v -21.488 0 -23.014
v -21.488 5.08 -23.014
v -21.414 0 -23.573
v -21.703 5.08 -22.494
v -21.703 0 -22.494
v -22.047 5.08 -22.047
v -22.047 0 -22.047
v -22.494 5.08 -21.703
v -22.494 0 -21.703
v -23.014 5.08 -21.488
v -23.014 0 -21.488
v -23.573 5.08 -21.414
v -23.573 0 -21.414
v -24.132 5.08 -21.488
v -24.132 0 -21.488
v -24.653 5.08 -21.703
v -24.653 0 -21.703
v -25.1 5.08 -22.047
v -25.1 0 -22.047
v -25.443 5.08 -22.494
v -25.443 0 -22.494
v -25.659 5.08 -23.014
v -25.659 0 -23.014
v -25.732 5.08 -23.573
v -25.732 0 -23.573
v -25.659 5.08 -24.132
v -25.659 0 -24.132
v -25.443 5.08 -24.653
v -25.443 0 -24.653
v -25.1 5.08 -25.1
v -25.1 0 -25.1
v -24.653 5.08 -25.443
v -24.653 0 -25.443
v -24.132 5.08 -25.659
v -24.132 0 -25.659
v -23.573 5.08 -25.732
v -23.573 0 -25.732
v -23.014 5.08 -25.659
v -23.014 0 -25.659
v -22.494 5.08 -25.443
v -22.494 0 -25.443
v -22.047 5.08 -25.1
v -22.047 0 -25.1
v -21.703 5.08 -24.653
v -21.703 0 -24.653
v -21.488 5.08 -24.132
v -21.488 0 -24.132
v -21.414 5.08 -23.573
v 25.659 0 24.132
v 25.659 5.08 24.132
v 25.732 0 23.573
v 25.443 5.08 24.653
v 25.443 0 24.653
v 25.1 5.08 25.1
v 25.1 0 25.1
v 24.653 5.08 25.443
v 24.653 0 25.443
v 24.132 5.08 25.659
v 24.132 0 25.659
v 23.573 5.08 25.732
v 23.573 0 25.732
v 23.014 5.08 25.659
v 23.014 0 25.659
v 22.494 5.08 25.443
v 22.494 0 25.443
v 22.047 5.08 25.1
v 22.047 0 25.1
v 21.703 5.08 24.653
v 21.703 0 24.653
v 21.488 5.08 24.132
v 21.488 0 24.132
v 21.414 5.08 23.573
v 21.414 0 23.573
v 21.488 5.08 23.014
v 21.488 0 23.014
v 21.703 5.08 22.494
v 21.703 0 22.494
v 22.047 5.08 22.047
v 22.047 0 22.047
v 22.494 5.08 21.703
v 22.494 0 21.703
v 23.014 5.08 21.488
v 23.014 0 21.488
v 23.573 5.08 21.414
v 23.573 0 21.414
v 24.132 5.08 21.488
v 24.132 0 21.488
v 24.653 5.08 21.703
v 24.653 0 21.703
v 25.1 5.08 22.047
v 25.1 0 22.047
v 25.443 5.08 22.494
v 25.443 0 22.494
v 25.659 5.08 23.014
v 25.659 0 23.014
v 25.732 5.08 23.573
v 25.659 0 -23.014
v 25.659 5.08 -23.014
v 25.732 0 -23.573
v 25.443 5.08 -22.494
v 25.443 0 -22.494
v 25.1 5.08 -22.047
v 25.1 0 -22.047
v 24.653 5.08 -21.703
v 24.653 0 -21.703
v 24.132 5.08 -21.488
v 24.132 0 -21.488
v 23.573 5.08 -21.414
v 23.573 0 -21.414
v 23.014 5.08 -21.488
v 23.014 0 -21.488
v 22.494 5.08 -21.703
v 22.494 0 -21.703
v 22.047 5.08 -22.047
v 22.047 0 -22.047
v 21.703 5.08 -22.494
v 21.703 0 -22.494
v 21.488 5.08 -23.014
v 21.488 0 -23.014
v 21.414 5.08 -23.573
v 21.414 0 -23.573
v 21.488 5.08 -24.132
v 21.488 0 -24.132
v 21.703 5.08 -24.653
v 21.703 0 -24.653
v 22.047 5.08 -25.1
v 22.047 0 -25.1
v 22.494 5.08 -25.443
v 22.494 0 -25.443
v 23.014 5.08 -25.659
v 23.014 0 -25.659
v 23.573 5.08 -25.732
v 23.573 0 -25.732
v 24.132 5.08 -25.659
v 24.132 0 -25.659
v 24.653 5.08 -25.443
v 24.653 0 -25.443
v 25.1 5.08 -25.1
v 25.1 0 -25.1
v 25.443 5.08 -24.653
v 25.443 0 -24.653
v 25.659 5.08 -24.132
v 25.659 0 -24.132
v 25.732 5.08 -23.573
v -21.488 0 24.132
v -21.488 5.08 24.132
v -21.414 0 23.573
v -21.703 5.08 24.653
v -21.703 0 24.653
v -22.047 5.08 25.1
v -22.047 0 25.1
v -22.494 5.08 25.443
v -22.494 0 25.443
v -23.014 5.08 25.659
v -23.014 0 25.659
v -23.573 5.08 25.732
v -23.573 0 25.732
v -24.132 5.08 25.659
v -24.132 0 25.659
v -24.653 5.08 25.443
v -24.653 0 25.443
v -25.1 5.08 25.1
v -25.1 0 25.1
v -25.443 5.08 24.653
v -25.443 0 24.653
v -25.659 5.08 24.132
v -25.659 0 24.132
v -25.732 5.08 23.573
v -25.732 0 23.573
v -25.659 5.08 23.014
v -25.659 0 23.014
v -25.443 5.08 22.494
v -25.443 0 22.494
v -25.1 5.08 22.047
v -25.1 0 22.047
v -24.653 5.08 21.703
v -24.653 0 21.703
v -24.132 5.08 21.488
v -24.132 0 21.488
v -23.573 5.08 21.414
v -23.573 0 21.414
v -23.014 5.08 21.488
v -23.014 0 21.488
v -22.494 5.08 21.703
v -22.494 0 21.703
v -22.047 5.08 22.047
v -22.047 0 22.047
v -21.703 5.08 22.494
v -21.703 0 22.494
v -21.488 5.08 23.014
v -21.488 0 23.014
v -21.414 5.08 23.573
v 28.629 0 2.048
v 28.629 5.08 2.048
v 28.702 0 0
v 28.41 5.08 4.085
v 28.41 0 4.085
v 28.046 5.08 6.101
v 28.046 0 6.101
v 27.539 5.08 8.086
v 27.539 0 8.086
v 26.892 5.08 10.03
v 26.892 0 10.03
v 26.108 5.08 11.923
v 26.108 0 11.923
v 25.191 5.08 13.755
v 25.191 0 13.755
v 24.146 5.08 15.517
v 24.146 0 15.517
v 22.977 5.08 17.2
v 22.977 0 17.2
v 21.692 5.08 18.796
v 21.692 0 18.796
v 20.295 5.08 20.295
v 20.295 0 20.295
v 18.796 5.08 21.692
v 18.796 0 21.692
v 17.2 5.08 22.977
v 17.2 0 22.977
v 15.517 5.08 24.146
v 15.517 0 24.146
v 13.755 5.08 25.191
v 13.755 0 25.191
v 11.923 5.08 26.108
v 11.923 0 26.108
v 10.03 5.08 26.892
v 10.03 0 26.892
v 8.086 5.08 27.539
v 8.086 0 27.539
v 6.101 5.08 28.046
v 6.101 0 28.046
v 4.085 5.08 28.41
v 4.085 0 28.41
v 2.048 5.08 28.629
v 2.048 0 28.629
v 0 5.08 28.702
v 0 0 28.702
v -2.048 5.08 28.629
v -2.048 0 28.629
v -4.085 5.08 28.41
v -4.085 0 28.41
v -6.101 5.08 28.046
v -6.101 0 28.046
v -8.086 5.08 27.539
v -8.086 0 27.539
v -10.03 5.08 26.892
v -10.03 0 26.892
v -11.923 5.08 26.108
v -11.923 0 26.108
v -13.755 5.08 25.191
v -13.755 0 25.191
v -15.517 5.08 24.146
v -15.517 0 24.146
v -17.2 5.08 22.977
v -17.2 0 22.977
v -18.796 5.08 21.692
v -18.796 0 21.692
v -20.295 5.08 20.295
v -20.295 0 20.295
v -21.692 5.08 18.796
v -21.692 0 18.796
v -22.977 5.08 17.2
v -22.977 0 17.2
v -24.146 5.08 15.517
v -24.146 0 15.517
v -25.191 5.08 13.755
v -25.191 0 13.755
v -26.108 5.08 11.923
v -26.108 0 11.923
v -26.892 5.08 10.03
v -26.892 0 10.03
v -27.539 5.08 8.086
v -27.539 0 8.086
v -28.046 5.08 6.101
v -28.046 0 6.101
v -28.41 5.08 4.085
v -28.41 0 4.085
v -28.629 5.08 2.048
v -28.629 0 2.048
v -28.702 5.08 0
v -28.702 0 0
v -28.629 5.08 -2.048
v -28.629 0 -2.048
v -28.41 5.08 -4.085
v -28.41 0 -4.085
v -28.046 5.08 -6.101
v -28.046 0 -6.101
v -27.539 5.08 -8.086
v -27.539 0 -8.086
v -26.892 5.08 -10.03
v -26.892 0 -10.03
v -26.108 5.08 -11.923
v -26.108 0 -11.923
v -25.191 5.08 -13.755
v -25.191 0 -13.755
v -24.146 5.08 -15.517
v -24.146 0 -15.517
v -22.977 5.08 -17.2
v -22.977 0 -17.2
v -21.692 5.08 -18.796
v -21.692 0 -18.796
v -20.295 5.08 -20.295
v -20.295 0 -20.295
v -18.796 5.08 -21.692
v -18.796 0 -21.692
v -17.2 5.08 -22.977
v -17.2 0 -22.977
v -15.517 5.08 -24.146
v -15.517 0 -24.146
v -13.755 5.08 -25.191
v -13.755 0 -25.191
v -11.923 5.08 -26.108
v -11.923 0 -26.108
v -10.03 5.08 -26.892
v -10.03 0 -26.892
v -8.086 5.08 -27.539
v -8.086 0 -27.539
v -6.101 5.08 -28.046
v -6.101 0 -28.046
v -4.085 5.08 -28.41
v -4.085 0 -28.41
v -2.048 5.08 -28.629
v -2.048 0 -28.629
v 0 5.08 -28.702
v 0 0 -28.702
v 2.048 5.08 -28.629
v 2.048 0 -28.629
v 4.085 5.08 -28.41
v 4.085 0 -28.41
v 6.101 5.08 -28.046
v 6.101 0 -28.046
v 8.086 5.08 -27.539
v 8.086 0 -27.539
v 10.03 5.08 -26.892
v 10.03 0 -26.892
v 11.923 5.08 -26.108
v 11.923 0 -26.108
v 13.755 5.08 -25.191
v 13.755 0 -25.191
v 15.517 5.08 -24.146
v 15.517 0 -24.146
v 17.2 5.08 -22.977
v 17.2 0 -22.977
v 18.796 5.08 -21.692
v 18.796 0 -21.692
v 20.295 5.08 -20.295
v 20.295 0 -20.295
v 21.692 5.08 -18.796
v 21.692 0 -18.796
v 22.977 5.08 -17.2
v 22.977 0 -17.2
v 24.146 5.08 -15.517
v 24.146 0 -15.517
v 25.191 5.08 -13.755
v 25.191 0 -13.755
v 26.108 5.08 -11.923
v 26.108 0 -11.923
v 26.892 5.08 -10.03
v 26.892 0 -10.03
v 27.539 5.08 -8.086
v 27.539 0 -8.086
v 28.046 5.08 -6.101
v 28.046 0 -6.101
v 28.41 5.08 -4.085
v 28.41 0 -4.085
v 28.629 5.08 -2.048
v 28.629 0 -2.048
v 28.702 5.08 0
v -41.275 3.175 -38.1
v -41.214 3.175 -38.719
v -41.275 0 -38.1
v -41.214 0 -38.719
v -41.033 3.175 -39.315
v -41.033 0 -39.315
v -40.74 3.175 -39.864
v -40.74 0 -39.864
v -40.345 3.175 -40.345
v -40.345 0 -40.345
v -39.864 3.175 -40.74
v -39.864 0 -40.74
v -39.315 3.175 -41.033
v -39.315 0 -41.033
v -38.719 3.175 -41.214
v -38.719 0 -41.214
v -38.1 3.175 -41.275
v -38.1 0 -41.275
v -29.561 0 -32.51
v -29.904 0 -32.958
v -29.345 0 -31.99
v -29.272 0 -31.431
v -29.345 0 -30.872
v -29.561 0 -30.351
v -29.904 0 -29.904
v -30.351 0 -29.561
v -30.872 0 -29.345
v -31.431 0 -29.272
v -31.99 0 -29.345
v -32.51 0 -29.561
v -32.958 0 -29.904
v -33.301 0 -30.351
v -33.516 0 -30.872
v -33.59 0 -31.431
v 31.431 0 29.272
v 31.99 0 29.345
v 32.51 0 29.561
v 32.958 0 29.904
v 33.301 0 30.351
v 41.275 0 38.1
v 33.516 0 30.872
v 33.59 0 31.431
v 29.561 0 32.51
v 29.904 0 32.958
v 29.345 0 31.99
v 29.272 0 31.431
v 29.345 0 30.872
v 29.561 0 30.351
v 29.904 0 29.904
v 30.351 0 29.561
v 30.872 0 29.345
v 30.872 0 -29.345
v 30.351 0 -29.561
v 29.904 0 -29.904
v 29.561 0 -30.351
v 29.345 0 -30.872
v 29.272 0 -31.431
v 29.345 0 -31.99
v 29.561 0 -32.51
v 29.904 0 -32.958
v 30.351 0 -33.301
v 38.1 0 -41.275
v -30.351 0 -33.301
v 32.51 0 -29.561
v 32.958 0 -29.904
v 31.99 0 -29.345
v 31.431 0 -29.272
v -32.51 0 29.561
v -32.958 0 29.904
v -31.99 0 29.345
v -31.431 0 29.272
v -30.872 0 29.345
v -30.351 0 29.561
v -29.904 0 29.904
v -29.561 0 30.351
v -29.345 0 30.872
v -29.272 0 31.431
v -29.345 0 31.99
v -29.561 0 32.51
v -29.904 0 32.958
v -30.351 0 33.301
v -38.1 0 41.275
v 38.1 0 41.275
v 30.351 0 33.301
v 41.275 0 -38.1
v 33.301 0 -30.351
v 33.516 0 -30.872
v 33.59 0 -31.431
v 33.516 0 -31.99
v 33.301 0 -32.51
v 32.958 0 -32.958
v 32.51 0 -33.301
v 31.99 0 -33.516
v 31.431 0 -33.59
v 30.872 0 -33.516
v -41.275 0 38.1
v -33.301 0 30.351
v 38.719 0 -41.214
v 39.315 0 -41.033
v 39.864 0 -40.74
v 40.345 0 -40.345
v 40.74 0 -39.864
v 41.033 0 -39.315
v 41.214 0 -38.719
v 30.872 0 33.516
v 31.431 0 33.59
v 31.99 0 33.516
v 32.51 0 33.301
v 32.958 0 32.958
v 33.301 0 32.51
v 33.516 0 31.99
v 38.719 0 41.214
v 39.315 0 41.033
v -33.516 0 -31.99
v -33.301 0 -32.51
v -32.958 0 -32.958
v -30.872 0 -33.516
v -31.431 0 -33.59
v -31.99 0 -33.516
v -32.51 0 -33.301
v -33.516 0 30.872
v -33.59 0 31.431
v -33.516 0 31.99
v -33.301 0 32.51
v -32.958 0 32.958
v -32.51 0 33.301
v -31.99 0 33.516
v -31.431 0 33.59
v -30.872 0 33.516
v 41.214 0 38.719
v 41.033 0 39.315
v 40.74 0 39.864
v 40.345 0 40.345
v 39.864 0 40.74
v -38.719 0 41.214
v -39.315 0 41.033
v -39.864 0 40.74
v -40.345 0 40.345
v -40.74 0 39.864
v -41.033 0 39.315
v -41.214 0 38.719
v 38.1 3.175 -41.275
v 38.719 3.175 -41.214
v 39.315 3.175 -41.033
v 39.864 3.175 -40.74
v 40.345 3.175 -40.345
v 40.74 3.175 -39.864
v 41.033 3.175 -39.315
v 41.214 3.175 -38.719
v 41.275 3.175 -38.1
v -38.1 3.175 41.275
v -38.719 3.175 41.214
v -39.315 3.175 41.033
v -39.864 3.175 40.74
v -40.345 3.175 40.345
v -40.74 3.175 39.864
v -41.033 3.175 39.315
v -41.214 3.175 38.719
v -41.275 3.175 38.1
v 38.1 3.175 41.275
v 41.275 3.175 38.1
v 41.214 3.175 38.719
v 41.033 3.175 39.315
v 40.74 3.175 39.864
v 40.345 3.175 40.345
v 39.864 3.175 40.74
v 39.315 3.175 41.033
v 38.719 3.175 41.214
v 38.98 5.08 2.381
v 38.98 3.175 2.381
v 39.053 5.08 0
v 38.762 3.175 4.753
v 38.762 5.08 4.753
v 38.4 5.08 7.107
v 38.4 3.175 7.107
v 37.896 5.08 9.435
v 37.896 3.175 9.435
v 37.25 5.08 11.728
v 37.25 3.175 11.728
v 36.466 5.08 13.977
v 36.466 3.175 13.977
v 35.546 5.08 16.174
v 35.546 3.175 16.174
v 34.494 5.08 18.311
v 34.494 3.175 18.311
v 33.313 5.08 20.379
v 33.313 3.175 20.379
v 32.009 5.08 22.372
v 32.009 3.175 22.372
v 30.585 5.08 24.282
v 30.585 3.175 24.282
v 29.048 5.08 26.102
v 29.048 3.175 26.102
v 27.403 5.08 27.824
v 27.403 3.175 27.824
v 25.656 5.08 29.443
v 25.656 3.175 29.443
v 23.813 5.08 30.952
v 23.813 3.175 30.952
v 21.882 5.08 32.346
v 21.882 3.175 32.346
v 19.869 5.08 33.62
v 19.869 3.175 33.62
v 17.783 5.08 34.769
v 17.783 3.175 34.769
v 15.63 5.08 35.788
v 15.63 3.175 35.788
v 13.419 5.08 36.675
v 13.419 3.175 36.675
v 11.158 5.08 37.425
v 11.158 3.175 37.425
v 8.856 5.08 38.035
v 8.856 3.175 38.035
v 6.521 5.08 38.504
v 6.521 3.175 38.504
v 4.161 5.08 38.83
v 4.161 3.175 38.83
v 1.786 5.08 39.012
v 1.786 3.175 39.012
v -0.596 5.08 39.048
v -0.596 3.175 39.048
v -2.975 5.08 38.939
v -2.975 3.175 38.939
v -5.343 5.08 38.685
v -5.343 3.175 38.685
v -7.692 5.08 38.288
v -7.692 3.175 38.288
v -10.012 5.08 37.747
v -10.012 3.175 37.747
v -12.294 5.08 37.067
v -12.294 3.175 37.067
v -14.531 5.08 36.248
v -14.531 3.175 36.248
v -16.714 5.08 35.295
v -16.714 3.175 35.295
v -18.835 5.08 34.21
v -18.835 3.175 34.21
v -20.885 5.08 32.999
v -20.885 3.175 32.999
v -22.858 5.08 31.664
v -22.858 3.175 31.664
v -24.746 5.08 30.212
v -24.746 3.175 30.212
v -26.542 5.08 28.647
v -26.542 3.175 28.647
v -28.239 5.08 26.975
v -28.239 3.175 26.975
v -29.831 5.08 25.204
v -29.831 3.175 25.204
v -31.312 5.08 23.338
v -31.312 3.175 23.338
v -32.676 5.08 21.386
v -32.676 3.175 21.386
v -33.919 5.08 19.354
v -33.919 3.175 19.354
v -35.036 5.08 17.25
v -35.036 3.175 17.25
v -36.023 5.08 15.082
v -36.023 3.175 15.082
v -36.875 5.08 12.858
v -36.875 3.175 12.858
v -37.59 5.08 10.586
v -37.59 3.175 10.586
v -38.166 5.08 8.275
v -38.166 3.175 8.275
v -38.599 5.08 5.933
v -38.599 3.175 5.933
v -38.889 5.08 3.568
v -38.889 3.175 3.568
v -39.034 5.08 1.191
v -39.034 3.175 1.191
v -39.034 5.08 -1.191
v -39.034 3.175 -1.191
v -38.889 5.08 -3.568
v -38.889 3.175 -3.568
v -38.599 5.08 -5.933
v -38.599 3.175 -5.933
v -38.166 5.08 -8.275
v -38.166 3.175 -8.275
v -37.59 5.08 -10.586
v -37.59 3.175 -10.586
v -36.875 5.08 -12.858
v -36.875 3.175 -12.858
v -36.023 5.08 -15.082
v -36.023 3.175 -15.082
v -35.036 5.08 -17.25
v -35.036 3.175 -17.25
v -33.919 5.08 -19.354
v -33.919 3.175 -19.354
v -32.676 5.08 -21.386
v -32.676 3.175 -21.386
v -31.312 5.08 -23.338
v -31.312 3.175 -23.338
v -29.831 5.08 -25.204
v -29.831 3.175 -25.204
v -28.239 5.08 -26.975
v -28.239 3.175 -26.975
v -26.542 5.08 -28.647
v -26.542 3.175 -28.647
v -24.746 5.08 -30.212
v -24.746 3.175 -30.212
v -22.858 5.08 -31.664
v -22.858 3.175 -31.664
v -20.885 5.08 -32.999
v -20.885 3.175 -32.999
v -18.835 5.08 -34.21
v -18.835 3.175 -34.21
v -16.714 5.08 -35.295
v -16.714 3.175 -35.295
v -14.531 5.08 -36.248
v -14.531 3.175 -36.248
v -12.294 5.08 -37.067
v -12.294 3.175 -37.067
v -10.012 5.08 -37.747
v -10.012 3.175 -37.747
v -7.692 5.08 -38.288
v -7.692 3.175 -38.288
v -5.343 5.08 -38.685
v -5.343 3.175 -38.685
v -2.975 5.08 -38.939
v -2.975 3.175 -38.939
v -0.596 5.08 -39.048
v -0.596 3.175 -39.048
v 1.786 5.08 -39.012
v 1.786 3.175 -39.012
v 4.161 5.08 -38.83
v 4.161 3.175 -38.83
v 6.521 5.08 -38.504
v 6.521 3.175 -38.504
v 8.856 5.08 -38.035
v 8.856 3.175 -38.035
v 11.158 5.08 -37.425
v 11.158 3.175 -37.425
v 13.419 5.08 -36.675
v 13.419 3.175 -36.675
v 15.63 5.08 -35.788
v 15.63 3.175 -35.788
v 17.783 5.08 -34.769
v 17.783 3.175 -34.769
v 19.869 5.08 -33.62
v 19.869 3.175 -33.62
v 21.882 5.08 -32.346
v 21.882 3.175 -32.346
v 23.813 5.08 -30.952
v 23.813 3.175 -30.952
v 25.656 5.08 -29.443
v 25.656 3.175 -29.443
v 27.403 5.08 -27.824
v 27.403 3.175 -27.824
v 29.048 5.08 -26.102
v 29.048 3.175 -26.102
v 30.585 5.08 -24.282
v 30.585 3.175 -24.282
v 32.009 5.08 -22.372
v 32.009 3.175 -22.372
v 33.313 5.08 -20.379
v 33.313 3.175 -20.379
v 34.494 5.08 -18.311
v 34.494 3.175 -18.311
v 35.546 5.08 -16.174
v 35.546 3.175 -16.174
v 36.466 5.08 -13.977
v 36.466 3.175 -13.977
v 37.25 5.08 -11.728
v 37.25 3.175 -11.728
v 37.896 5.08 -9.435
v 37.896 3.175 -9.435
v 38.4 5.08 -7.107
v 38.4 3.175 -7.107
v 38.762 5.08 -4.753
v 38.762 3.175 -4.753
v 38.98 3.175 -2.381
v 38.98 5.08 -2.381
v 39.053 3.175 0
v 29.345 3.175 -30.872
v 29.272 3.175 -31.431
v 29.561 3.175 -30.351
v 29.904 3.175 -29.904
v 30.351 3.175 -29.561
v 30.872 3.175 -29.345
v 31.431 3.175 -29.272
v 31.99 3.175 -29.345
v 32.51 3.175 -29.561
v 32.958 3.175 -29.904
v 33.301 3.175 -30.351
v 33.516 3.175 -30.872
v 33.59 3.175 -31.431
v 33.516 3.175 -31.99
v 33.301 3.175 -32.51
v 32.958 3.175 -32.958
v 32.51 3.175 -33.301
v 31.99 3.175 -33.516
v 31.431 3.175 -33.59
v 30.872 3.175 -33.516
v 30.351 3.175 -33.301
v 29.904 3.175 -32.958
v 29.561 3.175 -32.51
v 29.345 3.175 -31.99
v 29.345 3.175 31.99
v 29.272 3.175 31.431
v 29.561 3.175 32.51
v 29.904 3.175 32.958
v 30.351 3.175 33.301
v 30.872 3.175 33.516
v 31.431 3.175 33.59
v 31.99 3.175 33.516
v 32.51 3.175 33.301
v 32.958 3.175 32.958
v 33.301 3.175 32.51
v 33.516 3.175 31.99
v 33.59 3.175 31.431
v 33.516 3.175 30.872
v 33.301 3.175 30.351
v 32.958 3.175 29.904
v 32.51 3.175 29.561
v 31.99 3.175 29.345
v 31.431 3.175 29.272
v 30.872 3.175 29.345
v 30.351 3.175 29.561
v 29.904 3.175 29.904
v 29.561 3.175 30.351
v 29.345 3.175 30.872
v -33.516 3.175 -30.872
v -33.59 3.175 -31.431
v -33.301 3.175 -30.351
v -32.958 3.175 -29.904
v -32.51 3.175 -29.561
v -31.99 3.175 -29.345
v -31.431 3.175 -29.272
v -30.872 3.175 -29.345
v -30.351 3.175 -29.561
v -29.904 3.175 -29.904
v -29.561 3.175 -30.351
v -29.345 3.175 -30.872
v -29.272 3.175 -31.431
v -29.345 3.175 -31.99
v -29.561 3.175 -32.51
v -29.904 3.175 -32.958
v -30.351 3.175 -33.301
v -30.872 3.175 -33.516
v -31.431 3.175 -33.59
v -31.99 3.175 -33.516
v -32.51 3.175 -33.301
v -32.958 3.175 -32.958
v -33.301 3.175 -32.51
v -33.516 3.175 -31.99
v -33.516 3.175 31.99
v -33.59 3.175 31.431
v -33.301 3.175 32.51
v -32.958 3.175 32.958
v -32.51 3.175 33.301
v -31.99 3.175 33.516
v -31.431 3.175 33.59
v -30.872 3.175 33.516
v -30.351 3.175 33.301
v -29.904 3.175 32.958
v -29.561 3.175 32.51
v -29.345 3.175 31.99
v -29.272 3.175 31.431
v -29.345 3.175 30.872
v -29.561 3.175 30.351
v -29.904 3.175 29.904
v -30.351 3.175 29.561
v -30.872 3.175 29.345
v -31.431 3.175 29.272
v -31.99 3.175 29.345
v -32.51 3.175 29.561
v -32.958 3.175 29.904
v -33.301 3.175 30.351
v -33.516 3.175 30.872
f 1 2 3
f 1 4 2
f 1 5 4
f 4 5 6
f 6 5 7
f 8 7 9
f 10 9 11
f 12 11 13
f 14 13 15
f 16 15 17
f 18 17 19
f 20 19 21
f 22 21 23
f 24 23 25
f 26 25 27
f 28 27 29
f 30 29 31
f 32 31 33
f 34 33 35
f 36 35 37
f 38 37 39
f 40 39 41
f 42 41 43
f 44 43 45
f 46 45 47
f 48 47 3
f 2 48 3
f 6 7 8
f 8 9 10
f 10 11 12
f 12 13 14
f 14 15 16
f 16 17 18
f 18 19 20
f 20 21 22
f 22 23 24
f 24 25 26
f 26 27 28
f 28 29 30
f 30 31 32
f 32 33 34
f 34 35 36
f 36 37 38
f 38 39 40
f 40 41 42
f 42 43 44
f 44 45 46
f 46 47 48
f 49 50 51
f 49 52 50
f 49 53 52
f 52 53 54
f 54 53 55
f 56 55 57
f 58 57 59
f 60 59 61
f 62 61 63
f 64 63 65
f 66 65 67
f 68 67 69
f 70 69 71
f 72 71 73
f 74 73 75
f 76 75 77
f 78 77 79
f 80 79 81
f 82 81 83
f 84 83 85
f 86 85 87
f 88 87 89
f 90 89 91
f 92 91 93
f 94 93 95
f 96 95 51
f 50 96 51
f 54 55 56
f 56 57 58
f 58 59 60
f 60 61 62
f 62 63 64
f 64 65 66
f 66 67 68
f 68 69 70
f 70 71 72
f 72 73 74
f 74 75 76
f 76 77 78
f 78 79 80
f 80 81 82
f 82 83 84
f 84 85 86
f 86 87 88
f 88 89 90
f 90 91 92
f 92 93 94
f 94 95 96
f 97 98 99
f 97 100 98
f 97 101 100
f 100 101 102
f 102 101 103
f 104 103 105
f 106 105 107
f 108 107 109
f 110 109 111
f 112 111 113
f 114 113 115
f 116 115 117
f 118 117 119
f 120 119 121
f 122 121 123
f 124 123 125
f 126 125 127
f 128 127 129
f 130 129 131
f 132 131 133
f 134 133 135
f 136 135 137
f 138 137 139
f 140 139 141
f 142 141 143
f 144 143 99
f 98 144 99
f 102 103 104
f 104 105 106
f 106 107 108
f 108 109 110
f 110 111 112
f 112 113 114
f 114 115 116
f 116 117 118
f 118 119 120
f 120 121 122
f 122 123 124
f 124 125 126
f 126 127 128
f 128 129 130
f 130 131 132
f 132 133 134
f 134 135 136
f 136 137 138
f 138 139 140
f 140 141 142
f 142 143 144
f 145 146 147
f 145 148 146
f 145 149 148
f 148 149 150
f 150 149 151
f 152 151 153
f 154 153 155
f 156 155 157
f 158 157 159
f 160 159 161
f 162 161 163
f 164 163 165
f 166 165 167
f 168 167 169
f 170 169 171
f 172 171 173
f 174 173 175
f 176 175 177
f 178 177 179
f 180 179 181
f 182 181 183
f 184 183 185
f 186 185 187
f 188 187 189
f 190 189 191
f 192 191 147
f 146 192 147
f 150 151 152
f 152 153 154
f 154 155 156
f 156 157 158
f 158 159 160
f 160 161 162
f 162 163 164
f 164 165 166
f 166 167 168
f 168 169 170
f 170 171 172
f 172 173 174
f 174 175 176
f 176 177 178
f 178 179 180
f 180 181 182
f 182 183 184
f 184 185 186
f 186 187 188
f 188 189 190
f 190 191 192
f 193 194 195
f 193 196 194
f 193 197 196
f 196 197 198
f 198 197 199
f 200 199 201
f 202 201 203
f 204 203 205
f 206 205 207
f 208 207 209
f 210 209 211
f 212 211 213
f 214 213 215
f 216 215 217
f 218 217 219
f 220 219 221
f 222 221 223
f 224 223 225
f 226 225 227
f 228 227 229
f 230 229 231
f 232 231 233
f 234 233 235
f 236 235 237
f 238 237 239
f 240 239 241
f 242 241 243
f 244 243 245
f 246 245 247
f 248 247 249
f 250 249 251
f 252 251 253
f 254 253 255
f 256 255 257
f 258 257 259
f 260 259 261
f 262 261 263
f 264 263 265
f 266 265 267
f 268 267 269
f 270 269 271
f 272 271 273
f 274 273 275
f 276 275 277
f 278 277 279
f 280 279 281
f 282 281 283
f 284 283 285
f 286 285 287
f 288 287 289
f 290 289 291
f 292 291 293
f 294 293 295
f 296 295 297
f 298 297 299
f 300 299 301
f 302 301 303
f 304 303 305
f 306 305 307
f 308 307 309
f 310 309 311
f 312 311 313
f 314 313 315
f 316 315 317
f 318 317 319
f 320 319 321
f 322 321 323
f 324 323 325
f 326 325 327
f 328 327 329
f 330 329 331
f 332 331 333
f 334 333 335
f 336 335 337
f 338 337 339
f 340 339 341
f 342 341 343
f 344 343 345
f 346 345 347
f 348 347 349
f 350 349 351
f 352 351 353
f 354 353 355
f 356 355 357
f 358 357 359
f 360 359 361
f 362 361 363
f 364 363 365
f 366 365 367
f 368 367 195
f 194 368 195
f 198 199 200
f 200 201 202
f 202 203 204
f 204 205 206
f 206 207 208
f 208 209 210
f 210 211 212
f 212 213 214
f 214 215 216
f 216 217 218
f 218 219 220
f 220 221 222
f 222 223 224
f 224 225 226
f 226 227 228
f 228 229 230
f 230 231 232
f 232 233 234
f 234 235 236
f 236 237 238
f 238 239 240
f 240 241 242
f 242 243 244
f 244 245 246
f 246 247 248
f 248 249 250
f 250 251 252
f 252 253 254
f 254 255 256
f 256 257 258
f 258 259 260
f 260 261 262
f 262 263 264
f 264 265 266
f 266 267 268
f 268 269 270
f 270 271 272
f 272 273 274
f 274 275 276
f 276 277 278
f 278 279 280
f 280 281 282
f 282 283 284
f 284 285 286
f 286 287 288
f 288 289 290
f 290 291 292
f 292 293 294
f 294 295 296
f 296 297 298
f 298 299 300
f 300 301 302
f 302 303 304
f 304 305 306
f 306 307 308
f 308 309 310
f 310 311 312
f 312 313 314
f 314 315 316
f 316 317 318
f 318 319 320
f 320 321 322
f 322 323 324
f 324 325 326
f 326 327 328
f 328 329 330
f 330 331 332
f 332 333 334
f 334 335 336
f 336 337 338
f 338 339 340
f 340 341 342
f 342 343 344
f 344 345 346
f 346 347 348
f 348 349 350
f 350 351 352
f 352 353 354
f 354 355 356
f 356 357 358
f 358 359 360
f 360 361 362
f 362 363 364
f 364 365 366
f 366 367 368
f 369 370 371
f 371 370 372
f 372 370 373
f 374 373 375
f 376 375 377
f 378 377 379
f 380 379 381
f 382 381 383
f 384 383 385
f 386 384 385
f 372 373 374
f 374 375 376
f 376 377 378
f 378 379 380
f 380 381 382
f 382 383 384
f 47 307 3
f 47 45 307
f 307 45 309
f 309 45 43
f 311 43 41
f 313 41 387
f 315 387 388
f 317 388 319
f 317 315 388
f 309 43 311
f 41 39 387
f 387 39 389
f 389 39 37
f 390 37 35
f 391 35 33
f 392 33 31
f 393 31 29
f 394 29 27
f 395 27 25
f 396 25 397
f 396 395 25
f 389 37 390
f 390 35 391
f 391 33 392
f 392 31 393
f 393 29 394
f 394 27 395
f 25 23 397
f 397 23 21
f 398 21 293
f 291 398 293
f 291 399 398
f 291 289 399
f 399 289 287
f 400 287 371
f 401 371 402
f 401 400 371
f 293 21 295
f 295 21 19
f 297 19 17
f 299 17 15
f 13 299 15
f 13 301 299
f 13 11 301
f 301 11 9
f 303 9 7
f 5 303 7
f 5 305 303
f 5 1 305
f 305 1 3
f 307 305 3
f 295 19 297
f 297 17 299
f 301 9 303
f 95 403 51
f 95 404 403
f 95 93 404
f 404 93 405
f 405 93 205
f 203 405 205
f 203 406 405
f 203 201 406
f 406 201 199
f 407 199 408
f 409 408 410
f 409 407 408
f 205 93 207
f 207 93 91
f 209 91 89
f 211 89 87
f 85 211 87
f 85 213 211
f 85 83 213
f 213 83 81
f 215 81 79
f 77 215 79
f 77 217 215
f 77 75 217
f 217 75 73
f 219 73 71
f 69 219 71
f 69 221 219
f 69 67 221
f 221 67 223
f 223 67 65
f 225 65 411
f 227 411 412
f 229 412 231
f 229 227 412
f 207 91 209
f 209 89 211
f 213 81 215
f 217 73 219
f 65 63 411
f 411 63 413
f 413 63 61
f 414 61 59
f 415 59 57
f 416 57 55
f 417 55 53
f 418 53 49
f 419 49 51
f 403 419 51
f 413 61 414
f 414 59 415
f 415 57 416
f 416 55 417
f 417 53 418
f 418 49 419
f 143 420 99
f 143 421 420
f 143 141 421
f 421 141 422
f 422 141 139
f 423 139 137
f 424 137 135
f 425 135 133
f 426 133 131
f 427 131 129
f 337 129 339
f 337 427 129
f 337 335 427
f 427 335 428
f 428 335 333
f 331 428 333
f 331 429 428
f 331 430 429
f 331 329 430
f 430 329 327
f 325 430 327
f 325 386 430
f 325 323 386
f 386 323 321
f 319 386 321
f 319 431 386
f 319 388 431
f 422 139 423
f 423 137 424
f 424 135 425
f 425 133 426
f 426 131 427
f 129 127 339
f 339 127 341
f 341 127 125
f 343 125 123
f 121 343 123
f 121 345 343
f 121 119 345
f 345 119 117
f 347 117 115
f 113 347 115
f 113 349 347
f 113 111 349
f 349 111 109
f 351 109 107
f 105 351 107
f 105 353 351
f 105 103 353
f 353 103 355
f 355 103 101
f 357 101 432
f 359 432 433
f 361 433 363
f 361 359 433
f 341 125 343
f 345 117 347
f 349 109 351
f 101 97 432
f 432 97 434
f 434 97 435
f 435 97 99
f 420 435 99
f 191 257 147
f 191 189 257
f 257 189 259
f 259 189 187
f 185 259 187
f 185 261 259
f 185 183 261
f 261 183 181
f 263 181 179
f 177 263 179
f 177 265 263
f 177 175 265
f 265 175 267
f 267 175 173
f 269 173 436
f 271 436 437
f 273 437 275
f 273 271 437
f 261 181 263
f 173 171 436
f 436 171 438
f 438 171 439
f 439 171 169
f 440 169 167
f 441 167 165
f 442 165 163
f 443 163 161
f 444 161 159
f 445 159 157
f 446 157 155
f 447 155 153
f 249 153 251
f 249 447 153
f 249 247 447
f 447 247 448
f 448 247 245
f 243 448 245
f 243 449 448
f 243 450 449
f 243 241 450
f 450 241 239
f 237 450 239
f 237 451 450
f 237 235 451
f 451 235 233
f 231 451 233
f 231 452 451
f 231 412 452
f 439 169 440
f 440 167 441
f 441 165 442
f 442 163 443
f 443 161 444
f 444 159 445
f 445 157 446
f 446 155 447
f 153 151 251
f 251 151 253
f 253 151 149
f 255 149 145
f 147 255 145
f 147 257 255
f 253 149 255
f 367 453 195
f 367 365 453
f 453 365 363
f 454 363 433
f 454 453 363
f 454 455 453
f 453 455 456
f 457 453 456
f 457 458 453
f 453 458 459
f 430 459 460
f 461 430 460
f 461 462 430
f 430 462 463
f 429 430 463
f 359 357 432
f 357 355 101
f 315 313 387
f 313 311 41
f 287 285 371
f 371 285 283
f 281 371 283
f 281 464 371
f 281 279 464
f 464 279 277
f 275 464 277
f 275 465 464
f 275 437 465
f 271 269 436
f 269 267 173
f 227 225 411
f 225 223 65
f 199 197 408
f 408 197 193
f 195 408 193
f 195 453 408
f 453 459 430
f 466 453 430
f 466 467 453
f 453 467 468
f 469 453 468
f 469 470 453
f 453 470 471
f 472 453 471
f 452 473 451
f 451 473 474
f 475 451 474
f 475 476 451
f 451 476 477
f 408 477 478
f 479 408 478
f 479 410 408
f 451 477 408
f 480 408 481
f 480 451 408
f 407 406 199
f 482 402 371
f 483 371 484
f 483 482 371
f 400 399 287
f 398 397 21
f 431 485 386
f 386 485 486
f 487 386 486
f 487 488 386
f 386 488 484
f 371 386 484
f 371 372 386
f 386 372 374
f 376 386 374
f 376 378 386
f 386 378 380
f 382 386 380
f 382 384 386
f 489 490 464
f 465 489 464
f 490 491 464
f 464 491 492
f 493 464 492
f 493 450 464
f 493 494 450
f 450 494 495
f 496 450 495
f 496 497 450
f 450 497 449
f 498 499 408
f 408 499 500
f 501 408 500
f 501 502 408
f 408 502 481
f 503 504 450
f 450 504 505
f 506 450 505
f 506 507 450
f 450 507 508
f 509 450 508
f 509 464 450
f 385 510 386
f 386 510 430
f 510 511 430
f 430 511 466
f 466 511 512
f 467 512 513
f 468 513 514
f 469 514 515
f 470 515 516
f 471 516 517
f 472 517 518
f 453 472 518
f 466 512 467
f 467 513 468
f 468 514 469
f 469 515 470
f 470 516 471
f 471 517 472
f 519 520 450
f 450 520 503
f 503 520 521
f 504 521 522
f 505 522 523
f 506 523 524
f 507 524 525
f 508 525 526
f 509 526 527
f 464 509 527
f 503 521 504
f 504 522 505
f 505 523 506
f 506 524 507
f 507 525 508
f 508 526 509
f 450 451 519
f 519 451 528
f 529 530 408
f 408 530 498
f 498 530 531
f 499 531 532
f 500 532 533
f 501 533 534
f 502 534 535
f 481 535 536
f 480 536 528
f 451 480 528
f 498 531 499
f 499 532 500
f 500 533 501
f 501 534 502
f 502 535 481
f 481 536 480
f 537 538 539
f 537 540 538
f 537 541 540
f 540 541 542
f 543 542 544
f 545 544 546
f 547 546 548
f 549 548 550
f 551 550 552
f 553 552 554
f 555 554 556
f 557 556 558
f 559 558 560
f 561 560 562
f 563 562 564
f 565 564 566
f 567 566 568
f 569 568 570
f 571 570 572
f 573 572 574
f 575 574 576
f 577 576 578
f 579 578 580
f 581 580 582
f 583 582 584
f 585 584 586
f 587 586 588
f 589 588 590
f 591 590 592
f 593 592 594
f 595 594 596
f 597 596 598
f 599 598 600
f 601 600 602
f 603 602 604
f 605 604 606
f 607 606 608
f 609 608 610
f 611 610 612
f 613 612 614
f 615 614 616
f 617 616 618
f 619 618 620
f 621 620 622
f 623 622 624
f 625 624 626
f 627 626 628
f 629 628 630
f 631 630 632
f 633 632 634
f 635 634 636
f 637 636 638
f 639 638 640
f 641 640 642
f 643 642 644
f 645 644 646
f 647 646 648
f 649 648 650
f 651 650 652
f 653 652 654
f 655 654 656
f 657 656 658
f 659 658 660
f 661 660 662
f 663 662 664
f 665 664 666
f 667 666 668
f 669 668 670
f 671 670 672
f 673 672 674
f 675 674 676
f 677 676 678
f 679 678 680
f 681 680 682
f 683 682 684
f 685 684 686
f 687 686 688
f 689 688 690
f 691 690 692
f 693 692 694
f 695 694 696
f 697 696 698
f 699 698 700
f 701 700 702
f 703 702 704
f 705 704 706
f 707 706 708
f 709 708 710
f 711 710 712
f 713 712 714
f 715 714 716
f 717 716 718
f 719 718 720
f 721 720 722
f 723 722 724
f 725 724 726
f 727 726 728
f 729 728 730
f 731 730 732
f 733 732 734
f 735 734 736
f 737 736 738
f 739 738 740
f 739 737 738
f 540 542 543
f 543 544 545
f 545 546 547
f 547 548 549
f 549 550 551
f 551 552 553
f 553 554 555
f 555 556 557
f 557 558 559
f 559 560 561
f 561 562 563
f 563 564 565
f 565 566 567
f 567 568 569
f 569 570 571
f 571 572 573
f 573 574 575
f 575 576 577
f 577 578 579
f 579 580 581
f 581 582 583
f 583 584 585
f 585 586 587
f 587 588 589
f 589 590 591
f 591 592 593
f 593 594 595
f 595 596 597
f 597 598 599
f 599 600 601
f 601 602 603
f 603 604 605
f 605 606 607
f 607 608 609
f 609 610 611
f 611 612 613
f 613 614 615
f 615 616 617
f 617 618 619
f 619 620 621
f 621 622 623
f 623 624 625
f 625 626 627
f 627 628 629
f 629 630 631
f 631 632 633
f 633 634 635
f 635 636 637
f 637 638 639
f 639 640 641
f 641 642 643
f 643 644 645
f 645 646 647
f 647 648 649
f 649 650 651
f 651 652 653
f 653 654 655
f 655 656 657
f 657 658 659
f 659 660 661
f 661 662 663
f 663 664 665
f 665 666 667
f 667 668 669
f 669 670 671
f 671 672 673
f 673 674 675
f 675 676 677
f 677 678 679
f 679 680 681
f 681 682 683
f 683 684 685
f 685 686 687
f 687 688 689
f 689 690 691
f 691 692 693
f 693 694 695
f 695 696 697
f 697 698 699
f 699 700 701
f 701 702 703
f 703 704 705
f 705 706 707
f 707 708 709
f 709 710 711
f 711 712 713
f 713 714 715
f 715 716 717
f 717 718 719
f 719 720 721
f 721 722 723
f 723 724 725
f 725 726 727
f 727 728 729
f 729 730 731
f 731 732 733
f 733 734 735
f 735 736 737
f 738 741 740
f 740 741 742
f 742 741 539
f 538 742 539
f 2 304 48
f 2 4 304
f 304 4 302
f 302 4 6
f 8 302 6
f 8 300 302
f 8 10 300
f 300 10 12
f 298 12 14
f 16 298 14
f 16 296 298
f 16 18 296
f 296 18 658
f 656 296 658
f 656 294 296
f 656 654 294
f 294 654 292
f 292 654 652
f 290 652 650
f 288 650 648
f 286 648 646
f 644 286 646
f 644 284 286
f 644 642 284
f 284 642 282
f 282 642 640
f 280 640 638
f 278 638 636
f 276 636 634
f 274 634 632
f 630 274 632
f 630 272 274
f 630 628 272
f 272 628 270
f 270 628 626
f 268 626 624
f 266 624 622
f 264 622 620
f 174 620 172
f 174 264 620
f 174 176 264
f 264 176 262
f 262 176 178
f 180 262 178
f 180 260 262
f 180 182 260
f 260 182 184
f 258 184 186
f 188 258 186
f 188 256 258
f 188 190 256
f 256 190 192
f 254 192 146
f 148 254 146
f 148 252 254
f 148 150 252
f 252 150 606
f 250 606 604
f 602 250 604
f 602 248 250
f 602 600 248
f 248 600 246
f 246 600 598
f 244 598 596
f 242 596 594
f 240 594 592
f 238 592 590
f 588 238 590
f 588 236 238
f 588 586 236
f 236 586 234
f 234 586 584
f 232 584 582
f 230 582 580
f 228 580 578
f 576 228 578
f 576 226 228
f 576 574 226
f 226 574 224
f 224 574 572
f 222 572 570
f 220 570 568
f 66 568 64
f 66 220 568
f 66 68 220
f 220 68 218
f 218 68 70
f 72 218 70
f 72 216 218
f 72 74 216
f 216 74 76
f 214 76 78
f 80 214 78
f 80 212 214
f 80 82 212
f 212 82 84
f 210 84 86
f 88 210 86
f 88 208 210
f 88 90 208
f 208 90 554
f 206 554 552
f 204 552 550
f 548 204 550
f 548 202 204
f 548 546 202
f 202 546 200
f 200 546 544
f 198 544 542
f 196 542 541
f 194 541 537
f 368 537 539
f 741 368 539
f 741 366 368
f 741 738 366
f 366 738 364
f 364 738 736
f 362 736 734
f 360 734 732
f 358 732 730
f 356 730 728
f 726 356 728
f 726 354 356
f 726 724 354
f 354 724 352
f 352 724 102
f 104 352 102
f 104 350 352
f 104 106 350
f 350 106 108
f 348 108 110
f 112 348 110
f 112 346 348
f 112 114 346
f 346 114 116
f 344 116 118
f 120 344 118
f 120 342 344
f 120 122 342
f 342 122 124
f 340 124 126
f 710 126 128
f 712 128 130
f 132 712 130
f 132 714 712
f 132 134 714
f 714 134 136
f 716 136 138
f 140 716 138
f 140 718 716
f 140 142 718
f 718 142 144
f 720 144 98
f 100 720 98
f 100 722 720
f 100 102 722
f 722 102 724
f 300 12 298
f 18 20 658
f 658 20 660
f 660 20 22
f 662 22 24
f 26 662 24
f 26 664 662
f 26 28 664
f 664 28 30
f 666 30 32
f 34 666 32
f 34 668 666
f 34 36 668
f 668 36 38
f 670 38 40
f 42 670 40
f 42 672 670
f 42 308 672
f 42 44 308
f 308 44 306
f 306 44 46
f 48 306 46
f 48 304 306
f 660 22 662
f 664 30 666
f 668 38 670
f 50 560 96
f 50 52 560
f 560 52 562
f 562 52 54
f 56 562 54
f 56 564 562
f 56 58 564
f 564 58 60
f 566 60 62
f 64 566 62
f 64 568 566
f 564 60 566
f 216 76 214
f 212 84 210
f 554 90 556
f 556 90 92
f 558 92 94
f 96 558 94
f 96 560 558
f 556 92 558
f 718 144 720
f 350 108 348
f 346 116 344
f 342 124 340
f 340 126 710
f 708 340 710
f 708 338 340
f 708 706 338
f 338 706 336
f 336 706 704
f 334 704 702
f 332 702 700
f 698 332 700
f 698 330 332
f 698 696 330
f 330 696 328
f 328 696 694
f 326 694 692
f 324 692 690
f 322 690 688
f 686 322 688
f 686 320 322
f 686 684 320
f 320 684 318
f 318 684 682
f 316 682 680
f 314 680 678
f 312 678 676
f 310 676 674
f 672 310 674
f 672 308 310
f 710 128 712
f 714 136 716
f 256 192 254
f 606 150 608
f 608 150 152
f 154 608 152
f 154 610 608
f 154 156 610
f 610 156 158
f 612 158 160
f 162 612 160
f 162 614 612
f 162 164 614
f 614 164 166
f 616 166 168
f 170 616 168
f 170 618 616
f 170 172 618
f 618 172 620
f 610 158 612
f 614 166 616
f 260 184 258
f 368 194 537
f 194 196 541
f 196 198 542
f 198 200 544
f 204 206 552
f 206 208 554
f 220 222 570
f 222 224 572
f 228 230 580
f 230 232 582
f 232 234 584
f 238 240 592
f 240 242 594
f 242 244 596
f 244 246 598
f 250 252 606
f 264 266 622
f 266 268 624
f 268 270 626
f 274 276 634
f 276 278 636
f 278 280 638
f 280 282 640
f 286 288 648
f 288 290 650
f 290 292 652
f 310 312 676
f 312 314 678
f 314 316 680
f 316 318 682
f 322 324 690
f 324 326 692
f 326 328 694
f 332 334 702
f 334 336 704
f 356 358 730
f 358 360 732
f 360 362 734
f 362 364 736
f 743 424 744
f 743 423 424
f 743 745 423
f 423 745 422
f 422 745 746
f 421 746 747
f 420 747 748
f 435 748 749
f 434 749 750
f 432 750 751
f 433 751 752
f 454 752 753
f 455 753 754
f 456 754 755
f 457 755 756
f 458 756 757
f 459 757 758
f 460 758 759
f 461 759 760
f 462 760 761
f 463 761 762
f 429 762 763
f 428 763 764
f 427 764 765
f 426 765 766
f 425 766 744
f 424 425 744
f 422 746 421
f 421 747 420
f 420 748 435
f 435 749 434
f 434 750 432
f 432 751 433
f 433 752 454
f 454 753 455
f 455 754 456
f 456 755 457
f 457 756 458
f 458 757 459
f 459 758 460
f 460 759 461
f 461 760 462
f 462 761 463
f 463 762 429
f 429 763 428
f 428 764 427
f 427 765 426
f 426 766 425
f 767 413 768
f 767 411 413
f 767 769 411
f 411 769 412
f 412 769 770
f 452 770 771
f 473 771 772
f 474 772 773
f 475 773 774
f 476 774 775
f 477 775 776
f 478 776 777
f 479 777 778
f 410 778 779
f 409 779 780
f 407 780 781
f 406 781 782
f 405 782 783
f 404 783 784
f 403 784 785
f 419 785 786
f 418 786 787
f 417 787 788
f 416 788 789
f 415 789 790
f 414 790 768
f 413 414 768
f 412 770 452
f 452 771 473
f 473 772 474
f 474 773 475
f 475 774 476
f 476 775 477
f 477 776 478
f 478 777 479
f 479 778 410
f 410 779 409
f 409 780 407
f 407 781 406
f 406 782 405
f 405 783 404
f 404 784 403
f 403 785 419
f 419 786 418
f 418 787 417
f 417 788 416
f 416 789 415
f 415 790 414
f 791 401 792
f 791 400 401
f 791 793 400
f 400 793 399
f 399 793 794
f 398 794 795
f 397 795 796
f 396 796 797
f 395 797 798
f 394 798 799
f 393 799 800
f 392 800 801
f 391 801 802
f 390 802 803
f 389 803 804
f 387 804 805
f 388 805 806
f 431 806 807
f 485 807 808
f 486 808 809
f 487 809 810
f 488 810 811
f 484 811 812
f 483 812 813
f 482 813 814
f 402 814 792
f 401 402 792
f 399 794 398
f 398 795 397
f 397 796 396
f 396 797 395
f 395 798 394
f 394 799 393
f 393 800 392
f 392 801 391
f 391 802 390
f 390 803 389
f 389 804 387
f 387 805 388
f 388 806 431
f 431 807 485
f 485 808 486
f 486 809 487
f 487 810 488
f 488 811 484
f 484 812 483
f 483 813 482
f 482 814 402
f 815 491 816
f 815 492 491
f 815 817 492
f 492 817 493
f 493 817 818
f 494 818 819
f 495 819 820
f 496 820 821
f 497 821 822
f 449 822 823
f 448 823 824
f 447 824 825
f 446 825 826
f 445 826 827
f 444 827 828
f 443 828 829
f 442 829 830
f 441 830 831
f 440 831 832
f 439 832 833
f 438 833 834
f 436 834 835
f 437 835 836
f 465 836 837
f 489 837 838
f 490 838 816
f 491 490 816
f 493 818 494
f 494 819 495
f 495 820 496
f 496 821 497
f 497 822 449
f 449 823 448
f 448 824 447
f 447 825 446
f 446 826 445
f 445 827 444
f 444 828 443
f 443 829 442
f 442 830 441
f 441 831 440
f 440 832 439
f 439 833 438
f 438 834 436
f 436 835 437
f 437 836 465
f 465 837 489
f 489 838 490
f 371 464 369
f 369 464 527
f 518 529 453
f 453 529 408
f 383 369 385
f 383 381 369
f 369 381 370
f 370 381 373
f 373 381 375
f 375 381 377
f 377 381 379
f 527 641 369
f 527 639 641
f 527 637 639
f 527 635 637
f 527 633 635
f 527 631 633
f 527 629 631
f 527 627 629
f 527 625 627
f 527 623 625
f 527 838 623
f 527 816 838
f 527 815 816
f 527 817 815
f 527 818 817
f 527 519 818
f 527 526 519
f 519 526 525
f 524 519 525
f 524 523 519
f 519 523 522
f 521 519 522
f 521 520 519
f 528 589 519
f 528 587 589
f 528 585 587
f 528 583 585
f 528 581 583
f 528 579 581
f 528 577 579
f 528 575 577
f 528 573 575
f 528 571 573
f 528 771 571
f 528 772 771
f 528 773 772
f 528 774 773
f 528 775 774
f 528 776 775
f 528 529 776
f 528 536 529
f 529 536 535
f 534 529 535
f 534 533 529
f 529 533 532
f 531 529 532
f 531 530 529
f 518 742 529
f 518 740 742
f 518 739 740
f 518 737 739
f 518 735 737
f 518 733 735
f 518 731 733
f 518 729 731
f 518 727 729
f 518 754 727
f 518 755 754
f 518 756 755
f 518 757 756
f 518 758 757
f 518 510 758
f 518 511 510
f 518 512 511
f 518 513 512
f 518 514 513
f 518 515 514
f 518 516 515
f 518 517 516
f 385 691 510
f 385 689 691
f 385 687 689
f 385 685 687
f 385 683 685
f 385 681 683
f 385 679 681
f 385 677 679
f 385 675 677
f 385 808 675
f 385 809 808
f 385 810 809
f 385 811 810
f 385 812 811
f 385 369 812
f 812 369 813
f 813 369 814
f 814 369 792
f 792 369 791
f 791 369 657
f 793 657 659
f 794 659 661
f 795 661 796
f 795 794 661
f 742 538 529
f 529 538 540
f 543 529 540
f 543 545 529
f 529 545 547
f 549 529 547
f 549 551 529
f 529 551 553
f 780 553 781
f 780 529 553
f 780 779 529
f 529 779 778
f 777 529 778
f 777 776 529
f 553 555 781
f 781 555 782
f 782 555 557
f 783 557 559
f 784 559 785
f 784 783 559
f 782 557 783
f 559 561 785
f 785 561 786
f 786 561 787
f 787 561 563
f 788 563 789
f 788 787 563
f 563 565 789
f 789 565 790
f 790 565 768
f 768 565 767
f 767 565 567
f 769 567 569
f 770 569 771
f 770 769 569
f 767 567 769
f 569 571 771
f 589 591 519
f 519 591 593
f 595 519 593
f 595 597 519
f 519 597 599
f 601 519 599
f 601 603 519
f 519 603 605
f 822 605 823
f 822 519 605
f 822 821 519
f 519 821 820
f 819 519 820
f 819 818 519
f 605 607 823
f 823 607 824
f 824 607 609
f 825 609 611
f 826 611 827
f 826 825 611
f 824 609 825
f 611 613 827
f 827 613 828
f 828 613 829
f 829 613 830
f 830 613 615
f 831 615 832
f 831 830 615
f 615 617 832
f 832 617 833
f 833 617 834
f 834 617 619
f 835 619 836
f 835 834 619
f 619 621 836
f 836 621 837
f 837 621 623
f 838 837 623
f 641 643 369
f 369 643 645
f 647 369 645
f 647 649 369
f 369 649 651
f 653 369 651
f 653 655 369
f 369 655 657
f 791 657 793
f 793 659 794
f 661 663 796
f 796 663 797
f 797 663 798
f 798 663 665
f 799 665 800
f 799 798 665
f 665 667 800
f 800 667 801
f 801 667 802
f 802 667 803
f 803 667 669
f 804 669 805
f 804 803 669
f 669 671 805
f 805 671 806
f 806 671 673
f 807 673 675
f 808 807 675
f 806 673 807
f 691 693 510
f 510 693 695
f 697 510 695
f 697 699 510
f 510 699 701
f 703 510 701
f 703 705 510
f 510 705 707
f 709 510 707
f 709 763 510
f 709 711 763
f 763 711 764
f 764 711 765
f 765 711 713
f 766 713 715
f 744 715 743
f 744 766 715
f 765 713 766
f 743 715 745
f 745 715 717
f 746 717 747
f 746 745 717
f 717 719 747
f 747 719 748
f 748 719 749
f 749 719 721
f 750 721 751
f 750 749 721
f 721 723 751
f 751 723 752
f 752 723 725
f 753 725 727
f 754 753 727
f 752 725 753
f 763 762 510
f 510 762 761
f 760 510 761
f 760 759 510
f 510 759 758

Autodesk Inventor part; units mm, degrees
ref_plane "YZ Plane" through (0, 0, 0) normal (1, 0, 0) x (0, 1, 0)
ref_plane "XZ Plane" through (0, 0, 0) normal (0, 1, 0) x (-1, 0, 0)
ref_plane "XY Plane" through (0, 0, 0) normal (0, 0, 1) x (1, 0, 0)
sketch "Sketch1" plane through (0, 0, 0) normal (0, 1, 0) x (-1, 0, 0)
  line L0 (41.275, 41.275) -> (-41.275, 41.275)
  line L1 (-41.275, 41.275) -> (-41.275, -41.275)
  line L2 (-41.275, -41.275) -> (41.275, -41.275)
  line L3 (41.275, -41.275) -> (41.275, 41.275)
  circle A0 centre (0, 0) radius 44.45 construction
  circle A1 centre (0, 0) radius 39.6875
  line L4 (-41.275, 41.275) -> (41.275, -41.275) construction
  line L5 (41.275, 41.275) -> (-41.275, -41.275) construction
  circle A2 centre (31.4309, 31.4309) radius 2.159
  circle A3 centre (31.4309, -31.4309) radius 2.159
  circle A4 centre (-31.4309, 31.4309) radius 2.159
  circle A5 centre (-31.4309, -31.4309) radius 2.159
  point P0 (0, 0)
  point P1 (0, 0)
  point P2 (0, 0)
  dimension "d0" = 82.55
  dimension "d1" = 82.55
  dimension "d2" = 88.9
  dimension "d3" = 79.375
  dimension "d4" = 4.318
  dimension "d5" = 4.318
  dimension "d6" = 4.318
  dimension "d7" = 4.318
extrude "Extrusion1" add sketch "Sketch1" along normal blind 3.175 contours L3 L2 L1 L0 | A1
sketch "Sketch2" plane through (0, 3.175, 0) normal (0, 1, 0) x (1, 0, 0)
  circle A0 centre (0, 0) radius 39.0525
  circle A1 centre (0, 0) radius 39.6875 construction
  point P0 (0, 0)
  dimension "d10" = 78.105
  dimension "d17" = 79.375
extrude "Extrusion2" add sketch "Sketch2" along normal blind 1.905
fillet "Fillet1" radius 3.175 1 edges at (41.275, 1.5875, 41.275)
fillet "Fillet2" radius 3.175 1 edges at (-41.275, 1.5875, 41.275)
fillet "Fillet3" radius 3.175 1 edges at (41.275, 1.5875, -41.275)
fillet "Fillet4" radius 3.175 1 edges at (-41.275, 1.5875, -41.275)
sketch "Sketch3" plane through (0, 5.08, 0) normal (0, 1, 0) x (1, 0, 0)
  line L0 (-30.1625, -30.1625) -> (30.1625, -30.1625) construction
  line L1 (30.1625, -30.1625) -> (30.1625, 30.1625) construction
  line L2 (30.1625, 30.1625) -> (-30.1625, 30.1625) construction
  line L3 (-30.1625, 30.1625) -> (-30.1625, -30.1625) construction
  line L4 (-30.1625, -30.1625) -> (30.1625, 30.1625) construction
  line L5 (30.1625, -30.1625) -> (-30.1625, 30.1625) construction
  circle A0 centre (0, 0) radius 33.3375 construction
  circle A1 centre (23.5732, 23.5732) radius 2.159
  circle A2 centre (23.5732, -23.5732) radius 2.159
  circle A3 centre (-23.5732, -23.5732) radius 2.159
  circle A4 centre (-23.5732, 23.5732) radius 2.159
  circle A5 centre (0, 0) radius 28.702
  dimension "d18" = 60.325
  dimension "d19" = 60.325
  dimension "d20" = 66.675
  dimension "d21" = 4.318
  dimension "d22" = 4.318
  dimension "d23" = 4.318
  dimension "d24" = 4.318
  dimension "d25" = 57.404
extrude "Extrusion3" cut sketch "Sketch3" against normal through all
properties part number "3-125-to-2-25-instrument-adapter"
